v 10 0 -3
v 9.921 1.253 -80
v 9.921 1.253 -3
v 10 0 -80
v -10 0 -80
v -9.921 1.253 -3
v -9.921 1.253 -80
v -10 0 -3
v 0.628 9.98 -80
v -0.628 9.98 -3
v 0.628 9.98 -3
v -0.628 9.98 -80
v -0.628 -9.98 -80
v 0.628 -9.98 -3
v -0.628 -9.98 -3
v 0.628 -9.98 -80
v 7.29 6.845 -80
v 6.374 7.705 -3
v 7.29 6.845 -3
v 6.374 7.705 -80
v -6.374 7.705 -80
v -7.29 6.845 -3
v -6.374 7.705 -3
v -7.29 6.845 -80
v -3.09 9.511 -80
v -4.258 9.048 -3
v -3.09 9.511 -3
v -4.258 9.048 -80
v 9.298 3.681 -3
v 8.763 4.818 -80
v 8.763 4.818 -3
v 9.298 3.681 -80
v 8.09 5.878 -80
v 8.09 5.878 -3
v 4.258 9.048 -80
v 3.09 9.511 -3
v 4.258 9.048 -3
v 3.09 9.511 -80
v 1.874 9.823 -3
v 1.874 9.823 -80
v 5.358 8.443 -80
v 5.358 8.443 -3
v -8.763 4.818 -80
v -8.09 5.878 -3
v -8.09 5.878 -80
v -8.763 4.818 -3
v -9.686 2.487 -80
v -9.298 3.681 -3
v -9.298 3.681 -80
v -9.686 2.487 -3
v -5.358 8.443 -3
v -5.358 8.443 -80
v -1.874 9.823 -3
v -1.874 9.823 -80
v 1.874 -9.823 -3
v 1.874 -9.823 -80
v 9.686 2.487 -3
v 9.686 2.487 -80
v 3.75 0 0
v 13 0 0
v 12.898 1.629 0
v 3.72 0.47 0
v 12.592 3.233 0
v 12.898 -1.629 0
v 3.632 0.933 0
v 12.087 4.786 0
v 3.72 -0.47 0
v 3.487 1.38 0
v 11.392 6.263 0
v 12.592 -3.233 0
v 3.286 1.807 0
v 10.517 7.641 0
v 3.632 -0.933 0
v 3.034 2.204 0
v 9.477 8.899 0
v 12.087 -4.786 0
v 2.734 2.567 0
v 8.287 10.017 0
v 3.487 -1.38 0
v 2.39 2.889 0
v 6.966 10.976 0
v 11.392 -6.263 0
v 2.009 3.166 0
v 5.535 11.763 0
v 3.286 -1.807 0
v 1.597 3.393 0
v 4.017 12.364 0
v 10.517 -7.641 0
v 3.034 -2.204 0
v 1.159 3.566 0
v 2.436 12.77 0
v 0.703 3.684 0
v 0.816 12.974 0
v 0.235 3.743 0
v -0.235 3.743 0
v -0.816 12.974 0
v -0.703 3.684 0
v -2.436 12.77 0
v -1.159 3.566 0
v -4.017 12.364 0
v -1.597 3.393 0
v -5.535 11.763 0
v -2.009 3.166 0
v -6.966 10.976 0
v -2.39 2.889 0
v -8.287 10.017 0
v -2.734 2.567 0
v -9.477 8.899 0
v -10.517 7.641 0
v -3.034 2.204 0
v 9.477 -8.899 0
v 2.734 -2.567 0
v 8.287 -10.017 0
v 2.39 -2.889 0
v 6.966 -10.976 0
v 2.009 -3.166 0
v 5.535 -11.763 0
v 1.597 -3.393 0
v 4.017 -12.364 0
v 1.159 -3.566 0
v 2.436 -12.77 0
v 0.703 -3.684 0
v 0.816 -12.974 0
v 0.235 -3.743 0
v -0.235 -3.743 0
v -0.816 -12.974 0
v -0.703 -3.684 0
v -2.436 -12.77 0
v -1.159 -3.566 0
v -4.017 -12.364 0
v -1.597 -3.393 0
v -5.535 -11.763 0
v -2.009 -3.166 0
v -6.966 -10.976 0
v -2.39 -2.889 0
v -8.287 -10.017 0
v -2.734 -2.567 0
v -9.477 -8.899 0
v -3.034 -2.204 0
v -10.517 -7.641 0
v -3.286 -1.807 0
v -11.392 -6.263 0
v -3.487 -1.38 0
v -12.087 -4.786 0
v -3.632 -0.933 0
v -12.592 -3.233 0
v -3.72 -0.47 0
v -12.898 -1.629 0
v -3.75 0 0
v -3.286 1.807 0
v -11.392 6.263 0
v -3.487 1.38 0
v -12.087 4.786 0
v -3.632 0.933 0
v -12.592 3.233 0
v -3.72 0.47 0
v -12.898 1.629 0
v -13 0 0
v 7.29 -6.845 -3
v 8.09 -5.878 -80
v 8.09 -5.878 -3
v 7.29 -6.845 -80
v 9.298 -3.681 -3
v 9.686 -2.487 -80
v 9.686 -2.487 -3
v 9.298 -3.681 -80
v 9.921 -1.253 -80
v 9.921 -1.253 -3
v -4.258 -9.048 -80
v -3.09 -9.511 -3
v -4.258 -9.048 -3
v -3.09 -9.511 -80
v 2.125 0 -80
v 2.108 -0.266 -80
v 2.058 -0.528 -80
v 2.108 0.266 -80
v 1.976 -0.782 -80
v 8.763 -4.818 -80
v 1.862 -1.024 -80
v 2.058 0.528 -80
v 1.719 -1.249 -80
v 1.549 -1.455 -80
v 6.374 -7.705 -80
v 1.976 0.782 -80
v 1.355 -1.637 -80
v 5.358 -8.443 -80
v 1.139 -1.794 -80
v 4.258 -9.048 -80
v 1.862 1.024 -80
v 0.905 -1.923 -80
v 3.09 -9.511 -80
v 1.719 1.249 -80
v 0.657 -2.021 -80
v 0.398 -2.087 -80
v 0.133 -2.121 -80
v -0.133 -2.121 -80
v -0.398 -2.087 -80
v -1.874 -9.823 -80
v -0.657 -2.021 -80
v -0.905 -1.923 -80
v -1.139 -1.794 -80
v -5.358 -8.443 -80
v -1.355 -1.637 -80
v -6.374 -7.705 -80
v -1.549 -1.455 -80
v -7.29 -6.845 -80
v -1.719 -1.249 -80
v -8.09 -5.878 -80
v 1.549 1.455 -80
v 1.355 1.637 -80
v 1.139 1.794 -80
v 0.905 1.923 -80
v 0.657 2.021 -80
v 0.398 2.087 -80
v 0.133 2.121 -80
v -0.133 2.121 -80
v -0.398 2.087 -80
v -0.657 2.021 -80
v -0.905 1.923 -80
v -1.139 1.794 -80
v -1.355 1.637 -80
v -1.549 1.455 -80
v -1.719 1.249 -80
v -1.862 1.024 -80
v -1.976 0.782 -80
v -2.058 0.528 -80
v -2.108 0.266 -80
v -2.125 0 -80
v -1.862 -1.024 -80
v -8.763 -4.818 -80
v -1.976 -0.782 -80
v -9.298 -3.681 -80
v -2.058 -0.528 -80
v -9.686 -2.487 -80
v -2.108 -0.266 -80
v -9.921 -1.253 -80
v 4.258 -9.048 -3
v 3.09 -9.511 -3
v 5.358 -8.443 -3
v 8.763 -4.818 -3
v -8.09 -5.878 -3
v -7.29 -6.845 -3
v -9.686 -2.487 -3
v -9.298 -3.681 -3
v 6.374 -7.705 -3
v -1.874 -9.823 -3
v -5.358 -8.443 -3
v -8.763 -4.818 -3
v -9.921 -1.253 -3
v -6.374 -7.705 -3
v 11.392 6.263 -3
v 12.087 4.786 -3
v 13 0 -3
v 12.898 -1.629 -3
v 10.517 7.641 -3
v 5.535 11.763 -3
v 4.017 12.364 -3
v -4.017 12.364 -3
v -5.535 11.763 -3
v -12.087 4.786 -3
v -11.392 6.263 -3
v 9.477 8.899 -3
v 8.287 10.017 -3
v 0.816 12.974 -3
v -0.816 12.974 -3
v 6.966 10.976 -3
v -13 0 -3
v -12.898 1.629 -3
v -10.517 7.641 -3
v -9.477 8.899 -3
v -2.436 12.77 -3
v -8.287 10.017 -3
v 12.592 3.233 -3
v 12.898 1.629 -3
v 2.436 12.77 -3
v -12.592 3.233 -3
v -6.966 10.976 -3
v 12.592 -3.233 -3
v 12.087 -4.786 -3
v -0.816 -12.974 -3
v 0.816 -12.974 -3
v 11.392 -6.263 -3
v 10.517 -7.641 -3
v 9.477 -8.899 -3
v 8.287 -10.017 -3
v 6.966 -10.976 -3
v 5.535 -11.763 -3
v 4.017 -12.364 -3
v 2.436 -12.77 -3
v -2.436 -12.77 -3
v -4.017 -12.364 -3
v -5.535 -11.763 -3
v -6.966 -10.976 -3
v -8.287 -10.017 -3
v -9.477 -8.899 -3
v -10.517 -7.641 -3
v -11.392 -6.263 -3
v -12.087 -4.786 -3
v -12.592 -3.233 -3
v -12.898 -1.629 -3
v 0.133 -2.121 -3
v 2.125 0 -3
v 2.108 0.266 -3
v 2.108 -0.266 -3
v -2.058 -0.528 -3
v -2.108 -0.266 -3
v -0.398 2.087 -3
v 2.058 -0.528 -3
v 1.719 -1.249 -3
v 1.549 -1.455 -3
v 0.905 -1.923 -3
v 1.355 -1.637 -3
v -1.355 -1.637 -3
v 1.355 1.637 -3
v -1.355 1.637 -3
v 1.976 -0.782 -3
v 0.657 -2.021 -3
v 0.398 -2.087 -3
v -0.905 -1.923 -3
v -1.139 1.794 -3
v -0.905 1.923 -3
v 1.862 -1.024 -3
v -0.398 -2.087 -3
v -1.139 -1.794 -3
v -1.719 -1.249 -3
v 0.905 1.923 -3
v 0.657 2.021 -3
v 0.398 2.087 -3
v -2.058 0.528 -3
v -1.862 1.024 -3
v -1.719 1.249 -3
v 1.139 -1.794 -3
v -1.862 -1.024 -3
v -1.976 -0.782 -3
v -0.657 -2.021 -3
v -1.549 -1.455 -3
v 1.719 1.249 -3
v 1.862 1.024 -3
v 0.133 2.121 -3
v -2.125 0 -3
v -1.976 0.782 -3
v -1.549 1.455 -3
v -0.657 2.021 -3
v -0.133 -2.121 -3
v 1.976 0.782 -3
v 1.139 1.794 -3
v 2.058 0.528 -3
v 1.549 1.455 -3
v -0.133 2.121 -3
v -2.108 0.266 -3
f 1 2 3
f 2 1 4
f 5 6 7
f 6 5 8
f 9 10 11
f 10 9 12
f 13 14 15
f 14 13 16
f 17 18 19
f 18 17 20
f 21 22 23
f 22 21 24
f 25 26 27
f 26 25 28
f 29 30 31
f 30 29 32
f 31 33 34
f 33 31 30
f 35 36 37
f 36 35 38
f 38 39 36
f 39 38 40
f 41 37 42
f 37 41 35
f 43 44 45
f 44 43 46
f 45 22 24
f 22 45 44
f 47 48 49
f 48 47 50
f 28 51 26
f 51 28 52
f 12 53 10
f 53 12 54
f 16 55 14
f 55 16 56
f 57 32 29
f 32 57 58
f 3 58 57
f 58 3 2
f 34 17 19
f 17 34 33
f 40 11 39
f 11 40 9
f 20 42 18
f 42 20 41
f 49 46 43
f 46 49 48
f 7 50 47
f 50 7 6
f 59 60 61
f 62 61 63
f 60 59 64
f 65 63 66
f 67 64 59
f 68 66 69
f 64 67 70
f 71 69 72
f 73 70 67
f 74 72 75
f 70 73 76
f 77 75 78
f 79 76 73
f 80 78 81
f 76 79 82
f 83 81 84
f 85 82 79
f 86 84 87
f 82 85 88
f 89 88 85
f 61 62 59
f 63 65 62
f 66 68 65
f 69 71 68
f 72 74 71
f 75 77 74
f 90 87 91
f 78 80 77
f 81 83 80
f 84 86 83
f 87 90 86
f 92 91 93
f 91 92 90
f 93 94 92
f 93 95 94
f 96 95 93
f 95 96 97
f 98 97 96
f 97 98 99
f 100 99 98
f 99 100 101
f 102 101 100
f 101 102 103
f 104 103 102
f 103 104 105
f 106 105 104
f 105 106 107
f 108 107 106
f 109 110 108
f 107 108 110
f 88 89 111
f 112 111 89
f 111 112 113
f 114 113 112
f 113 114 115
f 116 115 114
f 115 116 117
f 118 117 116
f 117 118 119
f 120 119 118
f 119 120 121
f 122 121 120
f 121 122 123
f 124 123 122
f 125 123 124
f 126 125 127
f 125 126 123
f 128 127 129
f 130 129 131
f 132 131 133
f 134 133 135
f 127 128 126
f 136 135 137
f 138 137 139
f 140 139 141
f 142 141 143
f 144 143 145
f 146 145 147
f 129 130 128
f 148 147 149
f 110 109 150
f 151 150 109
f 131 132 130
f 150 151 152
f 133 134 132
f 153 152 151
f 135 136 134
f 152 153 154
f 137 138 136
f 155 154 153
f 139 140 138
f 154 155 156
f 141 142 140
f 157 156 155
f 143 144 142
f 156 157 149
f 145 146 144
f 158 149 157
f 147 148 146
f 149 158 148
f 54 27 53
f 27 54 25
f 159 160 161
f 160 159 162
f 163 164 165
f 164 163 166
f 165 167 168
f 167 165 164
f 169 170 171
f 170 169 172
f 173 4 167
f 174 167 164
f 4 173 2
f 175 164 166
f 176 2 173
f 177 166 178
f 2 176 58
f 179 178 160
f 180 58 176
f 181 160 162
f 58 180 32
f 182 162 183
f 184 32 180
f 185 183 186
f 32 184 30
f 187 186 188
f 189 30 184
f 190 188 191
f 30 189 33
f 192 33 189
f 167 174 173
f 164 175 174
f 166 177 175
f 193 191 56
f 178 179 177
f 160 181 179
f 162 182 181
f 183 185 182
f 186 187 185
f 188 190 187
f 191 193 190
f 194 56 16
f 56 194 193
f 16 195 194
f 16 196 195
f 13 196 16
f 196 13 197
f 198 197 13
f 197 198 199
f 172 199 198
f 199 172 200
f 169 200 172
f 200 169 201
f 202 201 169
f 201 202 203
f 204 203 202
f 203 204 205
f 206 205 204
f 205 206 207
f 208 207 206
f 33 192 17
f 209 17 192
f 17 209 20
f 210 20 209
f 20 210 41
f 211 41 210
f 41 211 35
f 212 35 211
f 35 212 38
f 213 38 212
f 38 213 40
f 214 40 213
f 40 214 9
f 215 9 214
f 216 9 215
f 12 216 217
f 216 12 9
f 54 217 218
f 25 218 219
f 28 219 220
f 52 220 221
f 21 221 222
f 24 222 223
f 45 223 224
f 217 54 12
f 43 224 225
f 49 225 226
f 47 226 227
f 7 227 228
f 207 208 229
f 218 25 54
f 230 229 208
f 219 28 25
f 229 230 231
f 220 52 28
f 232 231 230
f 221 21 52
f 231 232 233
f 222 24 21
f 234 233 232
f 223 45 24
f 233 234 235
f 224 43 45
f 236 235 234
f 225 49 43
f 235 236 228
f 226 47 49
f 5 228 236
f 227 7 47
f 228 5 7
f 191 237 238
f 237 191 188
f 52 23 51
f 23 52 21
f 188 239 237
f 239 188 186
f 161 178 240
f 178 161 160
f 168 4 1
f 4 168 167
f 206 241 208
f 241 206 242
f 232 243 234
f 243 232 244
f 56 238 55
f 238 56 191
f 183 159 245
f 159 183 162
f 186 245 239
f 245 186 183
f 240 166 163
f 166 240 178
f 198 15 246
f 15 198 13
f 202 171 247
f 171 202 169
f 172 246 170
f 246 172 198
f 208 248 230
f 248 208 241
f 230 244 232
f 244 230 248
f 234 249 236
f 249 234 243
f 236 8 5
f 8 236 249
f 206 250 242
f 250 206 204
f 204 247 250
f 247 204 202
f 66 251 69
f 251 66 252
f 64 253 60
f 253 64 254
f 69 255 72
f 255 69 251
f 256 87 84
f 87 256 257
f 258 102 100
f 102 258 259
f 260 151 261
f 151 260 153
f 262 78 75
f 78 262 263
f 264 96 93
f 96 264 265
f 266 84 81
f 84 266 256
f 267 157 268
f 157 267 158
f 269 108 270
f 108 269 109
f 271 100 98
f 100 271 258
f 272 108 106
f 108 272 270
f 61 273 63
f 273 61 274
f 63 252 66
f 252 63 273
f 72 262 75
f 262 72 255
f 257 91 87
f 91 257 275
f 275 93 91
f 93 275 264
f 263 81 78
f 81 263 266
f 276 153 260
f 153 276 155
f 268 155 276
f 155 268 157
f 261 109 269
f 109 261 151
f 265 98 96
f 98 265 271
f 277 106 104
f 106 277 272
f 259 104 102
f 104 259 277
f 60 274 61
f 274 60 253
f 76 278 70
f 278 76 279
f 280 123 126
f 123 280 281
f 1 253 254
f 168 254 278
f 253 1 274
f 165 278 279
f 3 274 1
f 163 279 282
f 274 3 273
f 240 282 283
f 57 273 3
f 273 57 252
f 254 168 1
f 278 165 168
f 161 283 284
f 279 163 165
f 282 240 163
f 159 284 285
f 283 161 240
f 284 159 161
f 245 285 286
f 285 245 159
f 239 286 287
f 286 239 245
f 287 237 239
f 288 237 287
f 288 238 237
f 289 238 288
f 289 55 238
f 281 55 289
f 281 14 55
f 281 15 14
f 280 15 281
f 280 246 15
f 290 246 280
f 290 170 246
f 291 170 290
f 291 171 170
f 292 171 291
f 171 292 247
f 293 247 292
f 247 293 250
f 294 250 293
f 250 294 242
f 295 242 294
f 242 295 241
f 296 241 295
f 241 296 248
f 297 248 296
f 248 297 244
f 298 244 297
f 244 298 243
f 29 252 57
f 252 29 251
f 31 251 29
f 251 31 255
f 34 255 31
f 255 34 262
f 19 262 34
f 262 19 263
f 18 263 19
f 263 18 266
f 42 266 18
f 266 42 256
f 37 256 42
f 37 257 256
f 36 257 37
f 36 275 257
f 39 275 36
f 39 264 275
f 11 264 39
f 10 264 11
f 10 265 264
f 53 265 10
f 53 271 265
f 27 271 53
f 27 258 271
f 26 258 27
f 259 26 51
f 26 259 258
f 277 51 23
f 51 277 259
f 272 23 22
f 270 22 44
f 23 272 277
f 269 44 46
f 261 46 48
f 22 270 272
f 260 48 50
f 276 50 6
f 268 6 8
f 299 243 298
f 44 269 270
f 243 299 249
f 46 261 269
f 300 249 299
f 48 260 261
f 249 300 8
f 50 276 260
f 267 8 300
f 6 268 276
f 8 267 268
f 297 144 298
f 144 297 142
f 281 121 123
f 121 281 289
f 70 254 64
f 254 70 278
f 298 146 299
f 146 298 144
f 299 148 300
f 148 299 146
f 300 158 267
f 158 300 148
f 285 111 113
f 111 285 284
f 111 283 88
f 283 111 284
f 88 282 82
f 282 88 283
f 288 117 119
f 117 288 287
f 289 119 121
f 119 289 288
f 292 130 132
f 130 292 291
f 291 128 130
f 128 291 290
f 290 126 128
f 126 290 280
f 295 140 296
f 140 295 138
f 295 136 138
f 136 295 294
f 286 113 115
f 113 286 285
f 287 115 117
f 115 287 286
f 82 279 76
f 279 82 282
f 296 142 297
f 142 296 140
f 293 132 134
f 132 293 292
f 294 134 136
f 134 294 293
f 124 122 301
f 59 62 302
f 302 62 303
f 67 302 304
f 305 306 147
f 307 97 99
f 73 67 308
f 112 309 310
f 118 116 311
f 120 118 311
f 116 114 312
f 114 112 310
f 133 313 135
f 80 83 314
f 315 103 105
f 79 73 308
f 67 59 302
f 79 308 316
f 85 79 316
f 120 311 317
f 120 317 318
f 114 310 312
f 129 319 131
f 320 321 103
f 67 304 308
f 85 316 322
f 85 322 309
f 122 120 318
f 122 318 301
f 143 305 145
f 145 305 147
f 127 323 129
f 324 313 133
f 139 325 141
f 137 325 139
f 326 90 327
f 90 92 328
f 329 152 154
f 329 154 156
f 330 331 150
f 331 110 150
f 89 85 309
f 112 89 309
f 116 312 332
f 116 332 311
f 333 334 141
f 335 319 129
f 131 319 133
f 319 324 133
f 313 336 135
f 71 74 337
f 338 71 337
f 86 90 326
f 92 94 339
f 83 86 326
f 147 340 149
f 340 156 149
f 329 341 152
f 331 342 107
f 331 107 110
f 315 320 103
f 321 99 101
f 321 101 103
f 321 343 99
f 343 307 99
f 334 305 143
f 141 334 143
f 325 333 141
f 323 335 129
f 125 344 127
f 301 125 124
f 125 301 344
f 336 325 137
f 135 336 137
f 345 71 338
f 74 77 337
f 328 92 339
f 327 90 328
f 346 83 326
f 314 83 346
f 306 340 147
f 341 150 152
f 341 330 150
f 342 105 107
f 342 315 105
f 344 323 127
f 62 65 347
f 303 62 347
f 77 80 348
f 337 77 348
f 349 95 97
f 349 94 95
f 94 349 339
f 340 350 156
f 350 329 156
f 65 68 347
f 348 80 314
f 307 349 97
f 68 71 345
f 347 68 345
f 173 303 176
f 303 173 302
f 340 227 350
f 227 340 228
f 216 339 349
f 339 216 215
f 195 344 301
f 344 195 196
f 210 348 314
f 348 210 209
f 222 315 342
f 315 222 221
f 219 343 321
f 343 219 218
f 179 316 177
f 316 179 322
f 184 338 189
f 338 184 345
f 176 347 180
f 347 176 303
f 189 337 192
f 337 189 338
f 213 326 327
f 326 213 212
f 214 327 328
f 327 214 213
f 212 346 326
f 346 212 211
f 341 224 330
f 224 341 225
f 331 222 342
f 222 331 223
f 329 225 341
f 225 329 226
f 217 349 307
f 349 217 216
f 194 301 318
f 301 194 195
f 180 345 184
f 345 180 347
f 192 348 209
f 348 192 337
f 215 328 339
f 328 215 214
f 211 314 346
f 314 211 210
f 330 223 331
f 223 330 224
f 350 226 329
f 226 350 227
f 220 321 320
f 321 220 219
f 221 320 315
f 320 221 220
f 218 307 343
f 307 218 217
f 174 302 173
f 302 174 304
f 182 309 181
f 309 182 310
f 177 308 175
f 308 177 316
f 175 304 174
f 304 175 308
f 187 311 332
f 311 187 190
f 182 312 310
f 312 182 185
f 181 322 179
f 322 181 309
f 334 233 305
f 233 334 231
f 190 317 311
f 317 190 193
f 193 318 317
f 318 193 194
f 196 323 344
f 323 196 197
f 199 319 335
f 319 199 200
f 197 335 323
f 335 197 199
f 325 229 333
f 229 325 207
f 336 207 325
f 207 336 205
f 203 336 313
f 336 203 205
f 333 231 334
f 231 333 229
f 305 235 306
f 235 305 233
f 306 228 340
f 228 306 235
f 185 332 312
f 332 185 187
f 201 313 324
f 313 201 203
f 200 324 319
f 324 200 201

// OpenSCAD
$fn = 50;


difference() {
	union() {
		translate(v = [0, 0, -80.0000000000]) {
			cylinder(h = 80, r = 10.0000000000);
		}
		translate(v = [0, 0, -3.0000000000]) {
			cylinder(h = 3, r = 13.0000000000);
		}
	}
	union() {
		translate(v = [0, 0, 0]) {
			rotate(a = [0, 0, 0]) {
				difference() {
					union() {
						#translate(v = [0, 0, -80.0000000000]) {
							cylinder(h = 80, r = 2.0000000000);
						}
						#translate(v = [0, 0, -3]) {
							cylinder(h = 3, r = 10.0000000000, r1 = 2.1250000000, r2 = 3.7500000000);
						}
						#translate(v = [0, 0, -80.0000000000]) {
							cylinder(h = 80, r = 2.1250000000);
						}
						#translate(v = [0, 0, -80.0000000000]) {
							cylinder(h = 80, r = 2.0000000000);
						}
					}
					union();
				}
			}
		}
	}
}
